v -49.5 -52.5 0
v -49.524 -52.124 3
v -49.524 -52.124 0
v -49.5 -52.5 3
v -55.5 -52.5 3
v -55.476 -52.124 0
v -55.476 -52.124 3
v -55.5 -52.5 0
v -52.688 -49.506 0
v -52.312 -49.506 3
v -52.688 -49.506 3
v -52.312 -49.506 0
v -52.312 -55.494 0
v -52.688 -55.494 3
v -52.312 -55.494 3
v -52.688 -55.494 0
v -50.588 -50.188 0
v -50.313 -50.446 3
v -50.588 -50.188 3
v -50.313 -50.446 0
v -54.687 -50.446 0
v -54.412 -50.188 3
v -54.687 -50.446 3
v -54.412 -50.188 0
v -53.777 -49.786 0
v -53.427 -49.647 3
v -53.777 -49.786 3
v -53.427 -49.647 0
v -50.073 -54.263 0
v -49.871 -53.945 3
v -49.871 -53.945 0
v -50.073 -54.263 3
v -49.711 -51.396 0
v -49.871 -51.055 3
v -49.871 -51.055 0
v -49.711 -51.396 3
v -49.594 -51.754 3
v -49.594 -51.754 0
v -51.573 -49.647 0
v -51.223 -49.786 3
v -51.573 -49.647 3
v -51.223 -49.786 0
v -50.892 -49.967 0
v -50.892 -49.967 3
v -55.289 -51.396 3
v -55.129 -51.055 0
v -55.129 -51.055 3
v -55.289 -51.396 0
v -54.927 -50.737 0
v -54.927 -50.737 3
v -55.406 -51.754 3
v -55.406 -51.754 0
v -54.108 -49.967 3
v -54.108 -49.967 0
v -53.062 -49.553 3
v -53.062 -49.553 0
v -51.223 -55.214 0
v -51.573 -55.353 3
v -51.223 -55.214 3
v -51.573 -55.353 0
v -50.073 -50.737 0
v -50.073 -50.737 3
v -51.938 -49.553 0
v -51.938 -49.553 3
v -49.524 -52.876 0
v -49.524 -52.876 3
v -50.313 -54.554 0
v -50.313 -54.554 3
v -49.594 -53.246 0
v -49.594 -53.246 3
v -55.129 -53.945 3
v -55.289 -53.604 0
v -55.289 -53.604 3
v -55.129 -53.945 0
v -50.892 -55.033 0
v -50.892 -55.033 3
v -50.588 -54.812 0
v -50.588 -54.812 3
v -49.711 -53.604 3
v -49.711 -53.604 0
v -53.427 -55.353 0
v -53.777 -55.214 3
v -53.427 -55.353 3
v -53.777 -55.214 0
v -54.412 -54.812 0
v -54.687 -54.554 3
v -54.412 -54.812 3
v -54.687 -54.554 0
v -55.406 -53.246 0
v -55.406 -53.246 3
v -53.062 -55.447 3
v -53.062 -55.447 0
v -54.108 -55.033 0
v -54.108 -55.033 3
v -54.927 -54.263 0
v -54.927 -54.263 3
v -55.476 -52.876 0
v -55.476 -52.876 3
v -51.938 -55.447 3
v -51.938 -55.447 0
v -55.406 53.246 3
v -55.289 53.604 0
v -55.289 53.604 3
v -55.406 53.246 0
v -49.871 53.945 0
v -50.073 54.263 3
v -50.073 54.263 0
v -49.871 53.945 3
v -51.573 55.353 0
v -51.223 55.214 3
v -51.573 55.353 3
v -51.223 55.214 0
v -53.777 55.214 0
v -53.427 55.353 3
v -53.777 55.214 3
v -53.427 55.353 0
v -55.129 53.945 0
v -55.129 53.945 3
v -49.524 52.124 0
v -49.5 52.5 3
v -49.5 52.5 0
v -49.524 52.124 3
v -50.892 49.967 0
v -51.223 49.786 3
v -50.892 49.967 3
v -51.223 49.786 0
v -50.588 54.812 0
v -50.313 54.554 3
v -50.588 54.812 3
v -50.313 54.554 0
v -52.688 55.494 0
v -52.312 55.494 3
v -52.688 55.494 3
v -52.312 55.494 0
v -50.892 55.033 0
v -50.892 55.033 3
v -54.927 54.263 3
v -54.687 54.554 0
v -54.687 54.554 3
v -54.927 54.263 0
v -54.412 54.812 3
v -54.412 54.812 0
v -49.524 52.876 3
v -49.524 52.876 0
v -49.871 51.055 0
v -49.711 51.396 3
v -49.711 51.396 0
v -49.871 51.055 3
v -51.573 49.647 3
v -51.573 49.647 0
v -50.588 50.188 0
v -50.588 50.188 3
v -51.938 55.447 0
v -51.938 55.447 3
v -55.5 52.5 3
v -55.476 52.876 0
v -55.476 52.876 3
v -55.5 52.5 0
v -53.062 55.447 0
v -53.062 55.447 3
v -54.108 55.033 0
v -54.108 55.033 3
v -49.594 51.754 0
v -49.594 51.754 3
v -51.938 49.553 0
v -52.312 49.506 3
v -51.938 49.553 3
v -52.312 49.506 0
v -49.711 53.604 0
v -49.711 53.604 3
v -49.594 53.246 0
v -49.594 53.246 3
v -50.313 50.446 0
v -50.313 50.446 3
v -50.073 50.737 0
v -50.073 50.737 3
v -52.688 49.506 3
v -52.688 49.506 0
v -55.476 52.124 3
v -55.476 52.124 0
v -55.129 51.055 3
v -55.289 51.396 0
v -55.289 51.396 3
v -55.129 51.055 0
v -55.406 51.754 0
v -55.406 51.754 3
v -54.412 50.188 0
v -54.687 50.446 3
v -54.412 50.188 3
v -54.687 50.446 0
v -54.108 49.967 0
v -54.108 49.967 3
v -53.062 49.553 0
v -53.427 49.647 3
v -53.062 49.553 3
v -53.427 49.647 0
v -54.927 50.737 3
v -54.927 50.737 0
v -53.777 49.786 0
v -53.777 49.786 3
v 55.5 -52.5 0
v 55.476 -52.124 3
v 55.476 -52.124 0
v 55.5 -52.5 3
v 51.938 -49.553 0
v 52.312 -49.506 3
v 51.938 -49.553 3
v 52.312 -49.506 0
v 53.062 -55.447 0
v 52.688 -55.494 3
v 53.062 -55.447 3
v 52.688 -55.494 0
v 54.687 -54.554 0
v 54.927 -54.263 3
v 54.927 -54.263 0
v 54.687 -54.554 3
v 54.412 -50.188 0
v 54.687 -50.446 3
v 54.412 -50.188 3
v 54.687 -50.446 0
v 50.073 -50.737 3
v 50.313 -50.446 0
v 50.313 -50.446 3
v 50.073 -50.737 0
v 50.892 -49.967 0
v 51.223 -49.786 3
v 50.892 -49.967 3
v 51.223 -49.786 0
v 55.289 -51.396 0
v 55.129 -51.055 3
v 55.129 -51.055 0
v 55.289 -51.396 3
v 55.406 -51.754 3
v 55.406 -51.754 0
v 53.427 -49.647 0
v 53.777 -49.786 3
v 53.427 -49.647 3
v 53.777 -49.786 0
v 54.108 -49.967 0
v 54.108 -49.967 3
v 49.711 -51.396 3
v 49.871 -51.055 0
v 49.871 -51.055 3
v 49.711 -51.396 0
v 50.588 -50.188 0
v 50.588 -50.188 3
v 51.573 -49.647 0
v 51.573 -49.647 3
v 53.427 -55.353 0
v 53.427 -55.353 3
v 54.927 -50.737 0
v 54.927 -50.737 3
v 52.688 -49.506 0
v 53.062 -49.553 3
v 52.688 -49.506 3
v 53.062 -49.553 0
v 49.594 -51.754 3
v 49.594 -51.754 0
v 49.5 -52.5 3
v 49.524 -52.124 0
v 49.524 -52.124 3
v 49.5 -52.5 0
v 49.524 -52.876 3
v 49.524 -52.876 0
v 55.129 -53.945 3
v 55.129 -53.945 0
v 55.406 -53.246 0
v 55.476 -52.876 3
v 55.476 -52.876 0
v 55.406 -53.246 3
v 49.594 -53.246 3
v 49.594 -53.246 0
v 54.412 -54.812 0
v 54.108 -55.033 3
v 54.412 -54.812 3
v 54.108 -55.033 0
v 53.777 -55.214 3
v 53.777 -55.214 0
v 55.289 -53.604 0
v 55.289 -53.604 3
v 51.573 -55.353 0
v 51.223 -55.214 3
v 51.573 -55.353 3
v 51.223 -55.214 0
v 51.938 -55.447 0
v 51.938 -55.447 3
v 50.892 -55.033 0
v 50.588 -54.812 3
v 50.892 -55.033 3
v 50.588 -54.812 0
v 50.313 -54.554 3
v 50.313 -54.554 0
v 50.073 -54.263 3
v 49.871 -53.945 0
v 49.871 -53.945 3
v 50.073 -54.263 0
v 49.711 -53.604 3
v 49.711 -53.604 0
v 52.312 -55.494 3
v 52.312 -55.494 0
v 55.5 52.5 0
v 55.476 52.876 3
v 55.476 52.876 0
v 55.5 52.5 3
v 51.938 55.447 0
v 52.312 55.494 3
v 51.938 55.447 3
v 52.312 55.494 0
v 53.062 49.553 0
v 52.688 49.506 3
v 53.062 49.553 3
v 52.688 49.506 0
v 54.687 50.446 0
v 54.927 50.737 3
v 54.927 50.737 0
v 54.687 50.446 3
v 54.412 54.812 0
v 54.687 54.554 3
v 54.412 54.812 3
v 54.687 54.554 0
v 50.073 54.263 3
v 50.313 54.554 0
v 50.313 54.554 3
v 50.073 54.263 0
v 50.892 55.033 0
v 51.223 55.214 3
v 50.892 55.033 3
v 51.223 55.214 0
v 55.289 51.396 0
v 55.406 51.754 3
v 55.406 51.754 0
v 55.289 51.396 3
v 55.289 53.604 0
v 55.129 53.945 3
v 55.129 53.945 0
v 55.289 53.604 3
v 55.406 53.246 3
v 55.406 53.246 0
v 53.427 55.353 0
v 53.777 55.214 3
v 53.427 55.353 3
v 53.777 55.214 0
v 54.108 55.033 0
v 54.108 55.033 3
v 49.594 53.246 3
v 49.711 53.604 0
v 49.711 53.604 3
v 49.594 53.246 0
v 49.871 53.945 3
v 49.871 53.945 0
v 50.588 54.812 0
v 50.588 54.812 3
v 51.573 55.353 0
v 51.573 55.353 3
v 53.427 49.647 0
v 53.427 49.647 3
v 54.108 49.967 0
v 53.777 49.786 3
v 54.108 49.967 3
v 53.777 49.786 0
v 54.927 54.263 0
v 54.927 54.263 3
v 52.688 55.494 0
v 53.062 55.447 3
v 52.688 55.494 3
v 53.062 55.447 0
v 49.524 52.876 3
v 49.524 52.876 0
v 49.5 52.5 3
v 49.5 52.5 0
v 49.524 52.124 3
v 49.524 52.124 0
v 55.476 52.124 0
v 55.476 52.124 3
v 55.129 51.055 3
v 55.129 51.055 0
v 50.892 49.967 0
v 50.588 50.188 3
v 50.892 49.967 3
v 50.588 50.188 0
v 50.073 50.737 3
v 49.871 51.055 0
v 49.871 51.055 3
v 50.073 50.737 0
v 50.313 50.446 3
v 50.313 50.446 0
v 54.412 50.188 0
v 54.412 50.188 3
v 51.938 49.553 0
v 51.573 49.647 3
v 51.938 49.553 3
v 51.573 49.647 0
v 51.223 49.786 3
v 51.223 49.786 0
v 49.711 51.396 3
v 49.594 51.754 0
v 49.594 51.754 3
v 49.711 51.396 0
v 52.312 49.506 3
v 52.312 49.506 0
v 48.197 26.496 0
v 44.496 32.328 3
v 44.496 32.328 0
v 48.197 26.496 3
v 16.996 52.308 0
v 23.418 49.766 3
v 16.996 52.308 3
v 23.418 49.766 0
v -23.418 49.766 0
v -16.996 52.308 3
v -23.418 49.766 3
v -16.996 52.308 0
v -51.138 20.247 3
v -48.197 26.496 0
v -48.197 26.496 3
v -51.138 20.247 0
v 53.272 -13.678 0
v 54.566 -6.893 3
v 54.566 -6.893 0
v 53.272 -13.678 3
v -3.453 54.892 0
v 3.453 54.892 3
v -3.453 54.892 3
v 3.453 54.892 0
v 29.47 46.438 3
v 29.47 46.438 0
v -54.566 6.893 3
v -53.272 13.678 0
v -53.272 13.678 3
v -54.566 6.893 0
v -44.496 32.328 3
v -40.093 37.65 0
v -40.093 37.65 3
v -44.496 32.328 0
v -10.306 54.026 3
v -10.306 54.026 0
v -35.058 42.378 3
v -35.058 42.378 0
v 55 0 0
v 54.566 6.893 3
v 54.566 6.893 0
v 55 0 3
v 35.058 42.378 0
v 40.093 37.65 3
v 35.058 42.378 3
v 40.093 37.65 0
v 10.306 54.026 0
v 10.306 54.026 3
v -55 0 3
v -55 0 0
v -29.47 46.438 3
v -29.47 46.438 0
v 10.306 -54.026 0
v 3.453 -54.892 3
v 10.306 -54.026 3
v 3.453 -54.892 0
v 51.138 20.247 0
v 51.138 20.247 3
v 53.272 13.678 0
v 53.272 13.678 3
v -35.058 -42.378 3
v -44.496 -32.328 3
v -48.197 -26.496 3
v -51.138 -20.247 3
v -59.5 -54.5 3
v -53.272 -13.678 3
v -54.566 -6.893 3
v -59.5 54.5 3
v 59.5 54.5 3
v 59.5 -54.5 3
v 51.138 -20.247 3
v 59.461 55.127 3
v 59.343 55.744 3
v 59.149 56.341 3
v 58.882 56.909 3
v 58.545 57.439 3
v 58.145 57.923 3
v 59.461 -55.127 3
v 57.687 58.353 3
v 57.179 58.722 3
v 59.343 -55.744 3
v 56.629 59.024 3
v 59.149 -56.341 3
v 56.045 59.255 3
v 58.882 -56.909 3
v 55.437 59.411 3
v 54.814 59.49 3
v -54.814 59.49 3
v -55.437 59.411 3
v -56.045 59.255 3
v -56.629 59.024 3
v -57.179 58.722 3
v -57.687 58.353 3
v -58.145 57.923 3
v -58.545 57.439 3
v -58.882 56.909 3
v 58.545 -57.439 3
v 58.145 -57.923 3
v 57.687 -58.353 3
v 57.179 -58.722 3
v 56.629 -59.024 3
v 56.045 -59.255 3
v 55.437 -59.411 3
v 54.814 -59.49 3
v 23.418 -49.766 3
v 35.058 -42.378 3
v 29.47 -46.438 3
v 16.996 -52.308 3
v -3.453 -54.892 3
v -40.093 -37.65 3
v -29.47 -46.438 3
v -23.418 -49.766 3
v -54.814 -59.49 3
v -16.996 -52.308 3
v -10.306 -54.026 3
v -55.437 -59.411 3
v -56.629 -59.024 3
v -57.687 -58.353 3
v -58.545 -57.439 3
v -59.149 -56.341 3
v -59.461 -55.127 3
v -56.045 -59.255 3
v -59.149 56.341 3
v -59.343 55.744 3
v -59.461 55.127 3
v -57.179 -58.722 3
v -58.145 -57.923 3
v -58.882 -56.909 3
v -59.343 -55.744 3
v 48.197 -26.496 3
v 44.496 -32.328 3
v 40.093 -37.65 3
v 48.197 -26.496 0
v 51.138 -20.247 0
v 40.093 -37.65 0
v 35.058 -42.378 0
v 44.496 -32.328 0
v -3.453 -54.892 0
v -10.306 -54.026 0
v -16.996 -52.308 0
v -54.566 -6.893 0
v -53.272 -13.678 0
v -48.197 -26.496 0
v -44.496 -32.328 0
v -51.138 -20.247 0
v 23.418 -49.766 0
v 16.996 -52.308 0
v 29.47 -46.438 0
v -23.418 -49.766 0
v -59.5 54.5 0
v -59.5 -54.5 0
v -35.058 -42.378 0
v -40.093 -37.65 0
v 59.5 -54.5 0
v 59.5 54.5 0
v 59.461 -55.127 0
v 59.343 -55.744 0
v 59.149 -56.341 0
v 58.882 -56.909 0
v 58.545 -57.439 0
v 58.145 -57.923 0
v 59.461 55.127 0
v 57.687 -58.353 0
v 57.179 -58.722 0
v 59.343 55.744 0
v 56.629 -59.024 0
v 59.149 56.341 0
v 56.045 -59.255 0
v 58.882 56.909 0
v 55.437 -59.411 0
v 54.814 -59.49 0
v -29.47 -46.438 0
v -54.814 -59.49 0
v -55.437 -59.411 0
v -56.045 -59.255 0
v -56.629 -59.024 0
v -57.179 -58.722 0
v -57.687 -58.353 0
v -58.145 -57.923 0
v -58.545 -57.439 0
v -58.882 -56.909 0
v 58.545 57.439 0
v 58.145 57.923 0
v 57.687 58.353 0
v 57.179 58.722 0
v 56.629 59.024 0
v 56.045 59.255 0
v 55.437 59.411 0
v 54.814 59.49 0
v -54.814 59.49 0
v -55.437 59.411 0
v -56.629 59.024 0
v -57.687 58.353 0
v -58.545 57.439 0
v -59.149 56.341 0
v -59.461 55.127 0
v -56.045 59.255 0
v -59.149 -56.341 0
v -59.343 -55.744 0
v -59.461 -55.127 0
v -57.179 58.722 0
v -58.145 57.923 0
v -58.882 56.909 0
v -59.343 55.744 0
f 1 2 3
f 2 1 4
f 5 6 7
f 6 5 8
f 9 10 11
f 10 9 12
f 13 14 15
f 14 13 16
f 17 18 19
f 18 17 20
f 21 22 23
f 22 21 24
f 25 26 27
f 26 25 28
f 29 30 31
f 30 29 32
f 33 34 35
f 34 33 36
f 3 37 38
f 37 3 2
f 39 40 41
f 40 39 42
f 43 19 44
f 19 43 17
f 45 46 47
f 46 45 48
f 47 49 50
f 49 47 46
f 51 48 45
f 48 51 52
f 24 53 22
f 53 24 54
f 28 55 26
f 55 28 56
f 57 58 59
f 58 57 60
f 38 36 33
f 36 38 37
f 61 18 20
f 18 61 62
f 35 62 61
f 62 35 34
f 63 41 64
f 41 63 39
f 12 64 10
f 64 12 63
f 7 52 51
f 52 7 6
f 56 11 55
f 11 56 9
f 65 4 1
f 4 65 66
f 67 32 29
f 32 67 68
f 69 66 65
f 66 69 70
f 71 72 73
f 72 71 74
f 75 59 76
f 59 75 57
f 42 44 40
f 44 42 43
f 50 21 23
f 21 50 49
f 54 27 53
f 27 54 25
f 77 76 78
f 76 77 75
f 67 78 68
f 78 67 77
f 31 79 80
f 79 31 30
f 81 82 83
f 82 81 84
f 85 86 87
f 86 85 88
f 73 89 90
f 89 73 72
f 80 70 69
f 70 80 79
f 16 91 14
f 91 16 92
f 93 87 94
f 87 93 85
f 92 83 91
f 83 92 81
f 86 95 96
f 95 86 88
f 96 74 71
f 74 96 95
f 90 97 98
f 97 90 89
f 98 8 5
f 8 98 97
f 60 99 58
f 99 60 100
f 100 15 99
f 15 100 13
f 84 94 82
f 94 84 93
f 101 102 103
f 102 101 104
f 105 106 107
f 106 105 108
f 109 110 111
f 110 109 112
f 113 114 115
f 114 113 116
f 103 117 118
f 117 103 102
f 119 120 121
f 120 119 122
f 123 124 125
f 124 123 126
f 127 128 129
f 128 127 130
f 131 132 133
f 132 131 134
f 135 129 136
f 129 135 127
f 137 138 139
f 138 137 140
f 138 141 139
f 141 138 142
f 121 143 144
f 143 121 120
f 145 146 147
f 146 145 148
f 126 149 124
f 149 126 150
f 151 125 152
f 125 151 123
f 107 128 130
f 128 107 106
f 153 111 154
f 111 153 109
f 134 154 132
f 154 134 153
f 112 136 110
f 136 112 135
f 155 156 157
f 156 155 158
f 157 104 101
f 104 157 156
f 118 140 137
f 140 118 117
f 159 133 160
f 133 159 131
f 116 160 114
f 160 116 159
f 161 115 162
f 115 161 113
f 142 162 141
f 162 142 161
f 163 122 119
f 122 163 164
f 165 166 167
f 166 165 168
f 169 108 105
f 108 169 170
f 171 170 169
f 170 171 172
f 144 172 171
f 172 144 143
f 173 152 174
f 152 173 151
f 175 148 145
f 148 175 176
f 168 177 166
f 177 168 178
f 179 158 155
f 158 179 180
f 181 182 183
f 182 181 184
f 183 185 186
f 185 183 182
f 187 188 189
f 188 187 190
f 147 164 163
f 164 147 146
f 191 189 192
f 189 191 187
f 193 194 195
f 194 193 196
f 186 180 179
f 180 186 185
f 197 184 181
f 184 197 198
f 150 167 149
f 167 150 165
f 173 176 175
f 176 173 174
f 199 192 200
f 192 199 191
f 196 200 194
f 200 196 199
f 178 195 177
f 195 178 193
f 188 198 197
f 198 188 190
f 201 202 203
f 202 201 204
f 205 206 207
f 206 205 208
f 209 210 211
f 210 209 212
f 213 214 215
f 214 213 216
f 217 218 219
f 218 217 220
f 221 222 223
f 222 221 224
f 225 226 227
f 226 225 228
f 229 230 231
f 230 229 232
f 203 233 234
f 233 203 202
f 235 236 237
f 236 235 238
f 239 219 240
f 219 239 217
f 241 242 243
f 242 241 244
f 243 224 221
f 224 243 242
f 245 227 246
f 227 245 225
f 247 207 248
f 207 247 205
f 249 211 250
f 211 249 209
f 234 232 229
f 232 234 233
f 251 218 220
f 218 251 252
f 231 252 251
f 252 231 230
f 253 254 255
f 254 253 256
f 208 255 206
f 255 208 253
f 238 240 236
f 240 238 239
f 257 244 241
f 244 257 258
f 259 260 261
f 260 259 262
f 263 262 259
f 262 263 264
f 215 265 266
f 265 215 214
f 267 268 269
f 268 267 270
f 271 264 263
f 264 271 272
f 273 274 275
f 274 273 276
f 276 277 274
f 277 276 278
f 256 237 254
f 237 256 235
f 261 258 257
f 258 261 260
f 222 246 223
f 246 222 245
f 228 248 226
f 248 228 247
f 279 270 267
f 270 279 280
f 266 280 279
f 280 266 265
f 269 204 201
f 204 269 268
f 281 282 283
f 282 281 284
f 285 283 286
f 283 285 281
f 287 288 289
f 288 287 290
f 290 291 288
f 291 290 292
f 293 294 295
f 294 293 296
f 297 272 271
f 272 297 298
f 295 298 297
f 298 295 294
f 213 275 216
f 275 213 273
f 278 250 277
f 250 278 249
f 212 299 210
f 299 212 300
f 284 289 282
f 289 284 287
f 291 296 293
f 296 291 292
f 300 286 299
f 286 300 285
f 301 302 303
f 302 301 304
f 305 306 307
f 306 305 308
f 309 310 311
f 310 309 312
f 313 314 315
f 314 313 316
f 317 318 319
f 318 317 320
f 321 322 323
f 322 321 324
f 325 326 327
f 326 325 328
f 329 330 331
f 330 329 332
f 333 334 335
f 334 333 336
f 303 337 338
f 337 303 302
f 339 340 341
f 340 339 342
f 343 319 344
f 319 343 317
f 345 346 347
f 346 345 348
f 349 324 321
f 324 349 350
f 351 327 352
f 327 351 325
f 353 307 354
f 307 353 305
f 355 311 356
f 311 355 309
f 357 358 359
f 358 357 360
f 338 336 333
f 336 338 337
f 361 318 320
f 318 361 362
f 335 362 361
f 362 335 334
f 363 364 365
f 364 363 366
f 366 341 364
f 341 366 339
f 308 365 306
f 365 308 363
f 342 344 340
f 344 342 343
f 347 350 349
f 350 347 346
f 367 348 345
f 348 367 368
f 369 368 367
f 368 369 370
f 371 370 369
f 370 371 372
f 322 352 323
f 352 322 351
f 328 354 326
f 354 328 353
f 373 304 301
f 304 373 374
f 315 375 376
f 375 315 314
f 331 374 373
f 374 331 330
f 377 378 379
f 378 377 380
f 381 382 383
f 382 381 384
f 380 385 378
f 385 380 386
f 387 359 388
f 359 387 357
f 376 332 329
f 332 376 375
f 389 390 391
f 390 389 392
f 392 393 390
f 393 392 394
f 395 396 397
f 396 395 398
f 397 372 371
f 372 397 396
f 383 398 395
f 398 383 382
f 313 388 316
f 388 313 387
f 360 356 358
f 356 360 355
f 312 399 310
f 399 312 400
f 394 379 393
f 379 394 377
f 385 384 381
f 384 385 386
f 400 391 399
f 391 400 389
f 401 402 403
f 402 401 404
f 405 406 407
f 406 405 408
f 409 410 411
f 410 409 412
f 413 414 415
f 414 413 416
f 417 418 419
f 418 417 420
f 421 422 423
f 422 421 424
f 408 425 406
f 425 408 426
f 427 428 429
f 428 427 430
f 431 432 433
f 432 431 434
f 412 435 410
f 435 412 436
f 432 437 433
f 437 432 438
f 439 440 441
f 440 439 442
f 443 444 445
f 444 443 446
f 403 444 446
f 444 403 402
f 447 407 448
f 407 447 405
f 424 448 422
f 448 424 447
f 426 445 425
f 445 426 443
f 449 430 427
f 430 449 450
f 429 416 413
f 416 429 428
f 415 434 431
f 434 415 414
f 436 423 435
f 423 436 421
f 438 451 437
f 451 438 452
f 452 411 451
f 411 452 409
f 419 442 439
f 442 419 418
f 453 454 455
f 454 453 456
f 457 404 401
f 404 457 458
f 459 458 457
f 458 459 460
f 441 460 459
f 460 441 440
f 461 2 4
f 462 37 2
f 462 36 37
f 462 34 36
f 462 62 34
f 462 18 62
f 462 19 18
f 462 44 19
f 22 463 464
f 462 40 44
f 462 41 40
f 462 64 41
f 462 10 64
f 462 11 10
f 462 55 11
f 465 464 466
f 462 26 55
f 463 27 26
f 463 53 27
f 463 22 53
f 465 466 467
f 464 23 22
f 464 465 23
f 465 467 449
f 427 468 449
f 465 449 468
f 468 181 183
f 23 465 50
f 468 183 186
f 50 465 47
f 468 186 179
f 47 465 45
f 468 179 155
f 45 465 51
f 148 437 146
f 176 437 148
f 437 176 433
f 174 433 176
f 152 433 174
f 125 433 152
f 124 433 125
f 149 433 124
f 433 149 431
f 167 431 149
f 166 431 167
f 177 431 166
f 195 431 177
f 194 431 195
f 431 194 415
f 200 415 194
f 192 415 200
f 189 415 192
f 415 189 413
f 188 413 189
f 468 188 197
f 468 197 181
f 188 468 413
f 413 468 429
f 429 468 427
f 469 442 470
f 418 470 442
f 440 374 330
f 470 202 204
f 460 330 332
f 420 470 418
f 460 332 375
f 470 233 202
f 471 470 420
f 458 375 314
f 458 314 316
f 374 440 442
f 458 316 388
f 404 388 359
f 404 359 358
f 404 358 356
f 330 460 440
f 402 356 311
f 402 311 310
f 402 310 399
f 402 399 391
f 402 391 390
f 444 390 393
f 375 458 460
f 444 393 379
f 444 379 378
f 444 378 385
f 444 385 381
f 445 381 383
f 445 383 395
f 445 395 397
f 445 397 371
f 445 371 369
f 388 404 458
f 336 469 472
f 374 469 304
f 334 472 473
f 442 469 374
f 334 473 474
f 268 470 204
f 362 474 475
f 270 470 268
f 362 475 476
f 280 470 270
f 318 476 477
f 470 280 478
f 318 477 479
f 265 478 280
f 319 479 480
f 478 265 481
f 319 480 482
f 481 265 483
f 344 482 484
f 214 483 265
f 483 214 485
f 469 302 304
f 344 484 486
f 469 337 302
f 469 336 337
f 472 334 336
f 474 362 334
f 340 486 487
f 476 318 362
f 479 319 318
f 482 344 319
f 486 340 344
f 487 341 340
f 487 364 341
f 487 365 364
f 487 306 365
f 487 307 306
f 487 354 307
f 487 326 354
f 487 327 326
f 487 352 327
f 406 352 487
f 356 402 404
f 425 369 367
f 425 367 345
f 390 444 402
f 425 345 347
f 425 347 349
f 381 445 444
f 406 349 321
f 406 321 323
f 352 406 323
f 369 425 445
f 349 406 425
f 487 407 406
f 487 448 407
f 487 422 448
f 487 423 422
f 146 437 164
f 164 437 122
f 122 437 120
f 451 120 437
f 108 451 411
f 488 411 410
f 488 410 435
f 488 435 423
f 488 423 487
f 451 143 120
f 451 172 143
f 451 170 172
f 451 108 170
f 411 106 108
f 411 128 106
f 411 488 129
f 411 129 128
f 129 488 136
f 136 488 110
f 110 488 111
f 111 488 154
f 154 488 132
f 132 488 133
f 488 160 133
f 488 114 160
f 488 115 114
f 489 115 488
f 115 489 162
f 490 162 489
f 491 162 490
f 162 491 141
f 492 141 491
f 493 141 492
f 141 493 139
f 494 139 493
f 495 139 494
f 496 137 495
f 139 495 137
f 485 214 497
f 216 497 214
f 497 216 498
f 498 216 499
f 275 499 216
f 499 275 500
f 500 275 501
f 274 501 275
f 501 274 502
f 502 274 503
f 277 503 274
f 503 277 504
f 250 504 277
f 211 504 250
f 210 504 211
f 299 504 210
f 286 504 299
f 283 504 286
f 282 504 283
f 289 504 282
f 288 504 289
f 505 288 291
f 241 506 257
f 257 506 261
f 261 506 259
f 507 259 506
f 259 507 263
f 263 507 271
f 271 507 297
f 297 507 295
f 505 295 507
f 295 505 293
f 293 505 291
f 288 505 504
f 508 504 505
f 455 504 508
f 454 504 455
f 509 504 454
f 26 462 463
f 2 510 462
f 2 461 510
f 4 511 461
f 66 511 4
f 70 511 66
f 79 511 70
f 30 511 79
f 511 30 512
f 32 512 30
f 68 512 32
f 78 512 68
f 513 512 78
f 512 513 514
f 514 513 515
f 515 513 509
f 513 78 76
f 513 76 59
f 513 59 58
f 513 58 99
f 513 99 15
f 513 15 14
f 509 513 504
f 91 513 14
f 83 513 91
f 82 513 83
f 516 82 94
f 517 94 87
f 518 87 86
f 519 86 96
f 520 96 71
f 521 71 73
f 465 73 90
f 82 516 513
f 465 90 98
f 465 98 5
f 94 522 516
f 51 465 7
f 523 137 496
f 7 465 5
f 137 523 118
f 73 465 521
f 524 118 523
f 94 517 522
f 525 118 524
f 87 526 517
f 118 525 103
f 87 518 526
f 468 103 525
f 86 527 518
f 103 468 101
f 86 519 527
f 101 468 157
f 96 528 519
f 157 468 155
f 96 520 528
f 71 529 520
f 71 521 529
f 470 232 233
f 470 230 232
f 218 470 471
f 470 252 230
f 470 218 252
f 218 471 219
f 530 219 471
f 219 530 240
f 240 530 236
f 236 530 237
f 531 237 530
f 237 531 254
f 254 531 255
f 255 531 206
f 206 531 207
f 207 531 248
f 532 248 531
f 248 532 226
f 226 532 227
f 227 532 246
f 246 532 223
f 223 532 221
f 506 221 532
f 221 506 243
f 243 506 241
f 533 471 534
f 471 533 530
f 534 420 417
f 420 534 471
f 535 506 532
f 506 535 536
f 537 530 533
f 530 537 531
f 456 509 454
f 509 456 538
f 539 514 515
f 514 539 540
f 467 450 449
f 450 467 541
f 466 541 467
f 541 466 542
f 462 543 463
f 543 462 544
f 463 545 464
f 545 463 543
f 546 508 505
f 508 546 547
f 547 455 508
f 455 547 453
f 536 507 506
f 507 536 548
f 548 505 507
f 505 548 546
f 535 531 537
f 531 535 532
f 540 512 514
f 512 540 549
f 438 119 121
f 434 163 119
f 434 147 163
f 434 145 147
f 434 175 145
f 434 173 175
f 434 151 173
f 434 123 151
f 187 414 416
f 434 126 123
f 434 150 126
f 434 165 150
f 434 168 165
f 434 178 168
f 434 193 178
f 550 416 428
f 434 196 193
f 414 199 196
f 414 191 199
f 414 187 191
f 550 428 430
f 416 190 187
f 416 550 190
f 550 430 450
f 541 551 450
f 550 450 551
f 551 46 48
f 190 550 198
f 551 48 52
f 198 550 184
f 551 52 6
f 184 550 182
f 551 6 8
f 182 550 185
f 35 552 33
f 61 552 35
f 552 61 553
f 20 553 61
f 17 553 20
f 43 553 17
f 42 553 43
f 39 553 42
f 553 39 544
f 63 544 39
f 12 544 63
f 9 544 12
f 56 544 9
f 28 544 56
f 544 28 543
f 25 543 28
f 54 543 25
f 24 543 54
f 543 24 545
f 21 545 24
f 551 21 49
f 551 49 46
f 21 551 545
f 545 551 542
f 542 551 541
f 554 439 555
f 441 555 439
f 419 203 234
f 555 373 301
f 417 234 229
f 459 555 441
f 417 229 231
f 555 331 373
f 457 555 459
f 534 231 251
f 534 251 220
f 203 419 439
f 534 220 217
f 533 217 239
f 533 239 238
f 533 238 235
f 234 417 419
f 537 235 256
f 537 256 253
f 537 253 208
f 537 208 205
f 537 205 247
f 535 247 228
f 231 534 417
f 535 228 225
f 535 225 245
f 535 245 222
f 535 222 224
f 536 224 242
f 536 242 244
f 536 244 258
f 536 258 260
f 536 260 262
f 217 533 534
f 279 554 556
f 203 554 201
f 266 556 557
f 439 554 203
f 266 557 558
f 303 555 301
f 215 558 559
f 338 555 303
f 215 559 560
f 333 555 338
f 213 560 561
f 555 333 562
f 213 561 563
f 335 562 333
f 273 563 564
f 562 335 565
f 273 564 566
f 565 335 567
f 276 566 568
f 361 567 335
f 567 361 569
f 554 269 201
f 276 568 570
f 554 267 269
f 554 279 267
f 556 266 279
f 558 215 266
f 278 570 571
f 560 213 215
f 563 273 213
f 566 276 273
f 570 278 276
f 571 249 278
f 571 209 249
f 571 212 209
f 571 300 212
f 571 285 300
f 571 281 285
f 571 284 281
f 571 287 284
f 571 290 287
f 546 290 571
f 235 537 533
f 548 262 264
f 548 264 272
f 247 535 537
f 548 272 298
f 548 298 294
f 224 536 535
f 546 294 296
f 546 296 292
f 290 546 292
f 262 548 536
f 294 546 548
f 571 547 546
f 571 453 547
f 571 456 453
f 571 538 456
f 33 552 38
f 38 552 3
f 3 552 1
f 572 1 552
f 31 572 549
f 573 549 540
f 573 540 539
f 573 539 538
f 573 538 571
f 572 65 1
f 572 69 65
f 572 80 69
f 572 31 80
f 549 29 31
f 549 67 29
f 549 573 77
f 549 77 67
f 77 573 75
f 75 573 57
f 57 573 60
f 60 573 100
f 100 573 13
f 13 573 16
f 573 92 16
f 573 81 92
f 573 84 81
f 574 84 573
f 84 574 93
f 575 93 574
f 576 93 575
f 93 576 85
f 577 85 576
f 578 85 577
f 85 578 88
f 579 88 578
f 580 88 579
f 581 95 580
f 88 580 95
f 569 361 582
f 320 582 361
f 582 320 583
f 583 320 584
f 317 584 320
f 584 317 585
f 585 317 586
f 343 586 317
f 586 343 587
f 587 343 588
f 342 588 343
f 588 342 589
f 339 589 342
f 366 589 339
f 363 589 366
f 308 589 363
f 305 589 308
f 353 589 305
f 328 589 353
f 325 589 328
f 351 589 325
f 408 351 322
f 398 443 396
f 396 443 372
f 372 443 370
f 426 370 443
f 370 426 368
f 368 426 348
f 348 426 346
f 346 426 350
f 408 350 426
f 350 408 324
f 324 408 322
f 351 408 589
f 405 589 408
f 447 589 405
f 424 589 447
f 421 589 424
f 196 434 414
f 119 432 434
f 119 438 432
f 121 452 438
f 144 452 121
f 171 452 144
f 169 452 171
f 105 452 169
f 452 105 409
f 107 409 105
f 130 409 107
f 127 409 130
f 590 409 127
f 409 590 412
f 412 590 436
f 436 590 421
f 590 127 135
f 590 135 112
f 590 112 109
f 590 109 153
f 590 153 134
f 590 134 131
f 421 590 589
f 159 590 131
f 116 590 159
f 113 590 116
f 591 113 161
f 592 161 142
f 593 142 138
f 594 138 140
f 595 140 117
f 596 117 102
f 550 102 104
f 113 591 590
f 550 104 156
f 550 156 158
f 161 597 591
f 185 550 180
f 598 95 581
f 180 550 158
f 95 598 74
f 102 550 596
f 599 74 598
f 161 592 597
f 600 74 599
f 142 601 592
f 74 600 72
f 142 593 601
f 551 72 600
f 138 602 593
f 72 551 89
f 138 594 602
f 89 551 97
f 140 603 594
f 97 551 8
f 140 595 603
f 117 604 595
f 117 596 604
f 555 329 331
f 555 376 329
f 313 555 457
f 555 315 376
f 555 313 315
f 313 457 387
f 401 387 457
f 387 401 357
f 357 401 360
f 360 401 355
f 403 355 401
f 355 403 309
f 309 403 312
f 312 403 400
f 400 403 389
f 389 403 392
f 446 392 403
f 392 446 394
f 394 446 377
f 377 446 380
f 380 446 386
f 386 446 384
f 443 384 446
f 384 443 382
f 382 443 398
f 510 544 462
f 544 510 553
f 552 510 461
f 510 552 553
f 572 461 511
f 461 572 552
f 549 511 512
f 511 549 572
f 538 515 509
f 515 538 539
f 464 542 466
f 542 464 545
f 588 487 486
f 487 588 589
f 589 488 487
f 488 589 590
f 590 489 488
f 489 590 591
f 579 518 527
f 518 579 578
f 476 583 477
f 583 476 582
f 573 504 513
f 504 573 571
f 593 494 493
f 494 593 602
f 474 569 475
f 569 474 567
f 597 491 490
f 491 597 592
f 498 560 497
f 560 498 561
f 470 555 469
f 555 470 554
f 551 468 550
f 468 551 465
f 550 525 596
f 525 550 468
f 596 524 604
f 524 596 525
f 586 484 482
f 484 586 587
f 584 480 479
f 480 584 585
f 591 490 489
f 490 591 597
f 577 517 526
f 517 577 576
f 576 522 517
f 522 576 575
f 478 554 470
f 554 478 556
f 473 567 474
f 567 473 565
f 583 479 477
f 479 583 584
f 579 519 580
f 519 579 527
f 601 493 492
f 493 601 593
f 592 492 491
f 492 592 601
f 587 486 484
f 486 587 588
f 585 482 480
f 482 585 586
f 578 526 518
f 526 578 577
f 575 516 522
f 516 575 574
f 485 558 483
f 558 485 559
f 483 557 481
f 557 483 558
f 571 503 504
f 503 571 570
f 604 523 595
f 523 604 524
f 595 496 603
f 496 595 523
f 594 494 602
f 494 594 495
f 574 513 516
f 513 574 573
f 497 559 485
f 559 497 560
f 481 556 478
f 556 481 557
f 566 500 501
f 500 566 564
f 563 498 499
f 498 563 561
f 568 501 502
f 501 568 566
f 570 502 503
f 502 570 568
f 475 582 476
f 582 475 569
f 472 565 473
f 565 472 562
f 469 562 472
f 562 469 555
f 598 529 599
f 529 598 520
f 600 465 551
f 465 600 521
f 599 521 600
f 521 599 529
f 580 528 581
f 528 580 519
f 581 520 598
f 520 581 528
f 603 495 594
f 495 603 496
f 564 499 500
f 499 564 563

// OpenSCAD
$fn = 50;


difference() {
	union() {
		hull() {
			translate(v = [-54.5000000000, 54.5000000000, 0]) {
				cylinder(h = 3, r = 5);
			}
			translate(v = [54.5000000000, 54.5000000000, 0]) {
				cylinder(h = 3, r = 5);
			}
			translate(v = [-54.5000000000, -54.5000000000, 0]) {
				cylinder(h = 3, r = 5);
			}
			translate(v = [54.5000000000, -54.5000000000, 0]) {
				cylinder(h = 3, r = 5);
			}
		}
	}
	union() {
		#translate(v = [-52.5000000000, -52.5000000000, -100.0000000000]) {
			cylinder(h = 200, r = 3.0000000000);
		}
		#translate(v = [-52.5000000000, 52.5000000000, -100.0000000000]) {
			cylinder(h = 200, r = 3.0000000000);
		}
		#translate(v = [52.5000000000, -52.5000000000, -100.0000000000]) {
			cylinder(h = 200, r = 3.0000000000);
		}
		#translate(v = [52.5000000000, 52.5000000000, -100.0000000000]) {
			cylinder(h = 200, r = 3.0000000000);
		}
		#cylinder(h = 3, r = 55.0000000000);
	}
}
